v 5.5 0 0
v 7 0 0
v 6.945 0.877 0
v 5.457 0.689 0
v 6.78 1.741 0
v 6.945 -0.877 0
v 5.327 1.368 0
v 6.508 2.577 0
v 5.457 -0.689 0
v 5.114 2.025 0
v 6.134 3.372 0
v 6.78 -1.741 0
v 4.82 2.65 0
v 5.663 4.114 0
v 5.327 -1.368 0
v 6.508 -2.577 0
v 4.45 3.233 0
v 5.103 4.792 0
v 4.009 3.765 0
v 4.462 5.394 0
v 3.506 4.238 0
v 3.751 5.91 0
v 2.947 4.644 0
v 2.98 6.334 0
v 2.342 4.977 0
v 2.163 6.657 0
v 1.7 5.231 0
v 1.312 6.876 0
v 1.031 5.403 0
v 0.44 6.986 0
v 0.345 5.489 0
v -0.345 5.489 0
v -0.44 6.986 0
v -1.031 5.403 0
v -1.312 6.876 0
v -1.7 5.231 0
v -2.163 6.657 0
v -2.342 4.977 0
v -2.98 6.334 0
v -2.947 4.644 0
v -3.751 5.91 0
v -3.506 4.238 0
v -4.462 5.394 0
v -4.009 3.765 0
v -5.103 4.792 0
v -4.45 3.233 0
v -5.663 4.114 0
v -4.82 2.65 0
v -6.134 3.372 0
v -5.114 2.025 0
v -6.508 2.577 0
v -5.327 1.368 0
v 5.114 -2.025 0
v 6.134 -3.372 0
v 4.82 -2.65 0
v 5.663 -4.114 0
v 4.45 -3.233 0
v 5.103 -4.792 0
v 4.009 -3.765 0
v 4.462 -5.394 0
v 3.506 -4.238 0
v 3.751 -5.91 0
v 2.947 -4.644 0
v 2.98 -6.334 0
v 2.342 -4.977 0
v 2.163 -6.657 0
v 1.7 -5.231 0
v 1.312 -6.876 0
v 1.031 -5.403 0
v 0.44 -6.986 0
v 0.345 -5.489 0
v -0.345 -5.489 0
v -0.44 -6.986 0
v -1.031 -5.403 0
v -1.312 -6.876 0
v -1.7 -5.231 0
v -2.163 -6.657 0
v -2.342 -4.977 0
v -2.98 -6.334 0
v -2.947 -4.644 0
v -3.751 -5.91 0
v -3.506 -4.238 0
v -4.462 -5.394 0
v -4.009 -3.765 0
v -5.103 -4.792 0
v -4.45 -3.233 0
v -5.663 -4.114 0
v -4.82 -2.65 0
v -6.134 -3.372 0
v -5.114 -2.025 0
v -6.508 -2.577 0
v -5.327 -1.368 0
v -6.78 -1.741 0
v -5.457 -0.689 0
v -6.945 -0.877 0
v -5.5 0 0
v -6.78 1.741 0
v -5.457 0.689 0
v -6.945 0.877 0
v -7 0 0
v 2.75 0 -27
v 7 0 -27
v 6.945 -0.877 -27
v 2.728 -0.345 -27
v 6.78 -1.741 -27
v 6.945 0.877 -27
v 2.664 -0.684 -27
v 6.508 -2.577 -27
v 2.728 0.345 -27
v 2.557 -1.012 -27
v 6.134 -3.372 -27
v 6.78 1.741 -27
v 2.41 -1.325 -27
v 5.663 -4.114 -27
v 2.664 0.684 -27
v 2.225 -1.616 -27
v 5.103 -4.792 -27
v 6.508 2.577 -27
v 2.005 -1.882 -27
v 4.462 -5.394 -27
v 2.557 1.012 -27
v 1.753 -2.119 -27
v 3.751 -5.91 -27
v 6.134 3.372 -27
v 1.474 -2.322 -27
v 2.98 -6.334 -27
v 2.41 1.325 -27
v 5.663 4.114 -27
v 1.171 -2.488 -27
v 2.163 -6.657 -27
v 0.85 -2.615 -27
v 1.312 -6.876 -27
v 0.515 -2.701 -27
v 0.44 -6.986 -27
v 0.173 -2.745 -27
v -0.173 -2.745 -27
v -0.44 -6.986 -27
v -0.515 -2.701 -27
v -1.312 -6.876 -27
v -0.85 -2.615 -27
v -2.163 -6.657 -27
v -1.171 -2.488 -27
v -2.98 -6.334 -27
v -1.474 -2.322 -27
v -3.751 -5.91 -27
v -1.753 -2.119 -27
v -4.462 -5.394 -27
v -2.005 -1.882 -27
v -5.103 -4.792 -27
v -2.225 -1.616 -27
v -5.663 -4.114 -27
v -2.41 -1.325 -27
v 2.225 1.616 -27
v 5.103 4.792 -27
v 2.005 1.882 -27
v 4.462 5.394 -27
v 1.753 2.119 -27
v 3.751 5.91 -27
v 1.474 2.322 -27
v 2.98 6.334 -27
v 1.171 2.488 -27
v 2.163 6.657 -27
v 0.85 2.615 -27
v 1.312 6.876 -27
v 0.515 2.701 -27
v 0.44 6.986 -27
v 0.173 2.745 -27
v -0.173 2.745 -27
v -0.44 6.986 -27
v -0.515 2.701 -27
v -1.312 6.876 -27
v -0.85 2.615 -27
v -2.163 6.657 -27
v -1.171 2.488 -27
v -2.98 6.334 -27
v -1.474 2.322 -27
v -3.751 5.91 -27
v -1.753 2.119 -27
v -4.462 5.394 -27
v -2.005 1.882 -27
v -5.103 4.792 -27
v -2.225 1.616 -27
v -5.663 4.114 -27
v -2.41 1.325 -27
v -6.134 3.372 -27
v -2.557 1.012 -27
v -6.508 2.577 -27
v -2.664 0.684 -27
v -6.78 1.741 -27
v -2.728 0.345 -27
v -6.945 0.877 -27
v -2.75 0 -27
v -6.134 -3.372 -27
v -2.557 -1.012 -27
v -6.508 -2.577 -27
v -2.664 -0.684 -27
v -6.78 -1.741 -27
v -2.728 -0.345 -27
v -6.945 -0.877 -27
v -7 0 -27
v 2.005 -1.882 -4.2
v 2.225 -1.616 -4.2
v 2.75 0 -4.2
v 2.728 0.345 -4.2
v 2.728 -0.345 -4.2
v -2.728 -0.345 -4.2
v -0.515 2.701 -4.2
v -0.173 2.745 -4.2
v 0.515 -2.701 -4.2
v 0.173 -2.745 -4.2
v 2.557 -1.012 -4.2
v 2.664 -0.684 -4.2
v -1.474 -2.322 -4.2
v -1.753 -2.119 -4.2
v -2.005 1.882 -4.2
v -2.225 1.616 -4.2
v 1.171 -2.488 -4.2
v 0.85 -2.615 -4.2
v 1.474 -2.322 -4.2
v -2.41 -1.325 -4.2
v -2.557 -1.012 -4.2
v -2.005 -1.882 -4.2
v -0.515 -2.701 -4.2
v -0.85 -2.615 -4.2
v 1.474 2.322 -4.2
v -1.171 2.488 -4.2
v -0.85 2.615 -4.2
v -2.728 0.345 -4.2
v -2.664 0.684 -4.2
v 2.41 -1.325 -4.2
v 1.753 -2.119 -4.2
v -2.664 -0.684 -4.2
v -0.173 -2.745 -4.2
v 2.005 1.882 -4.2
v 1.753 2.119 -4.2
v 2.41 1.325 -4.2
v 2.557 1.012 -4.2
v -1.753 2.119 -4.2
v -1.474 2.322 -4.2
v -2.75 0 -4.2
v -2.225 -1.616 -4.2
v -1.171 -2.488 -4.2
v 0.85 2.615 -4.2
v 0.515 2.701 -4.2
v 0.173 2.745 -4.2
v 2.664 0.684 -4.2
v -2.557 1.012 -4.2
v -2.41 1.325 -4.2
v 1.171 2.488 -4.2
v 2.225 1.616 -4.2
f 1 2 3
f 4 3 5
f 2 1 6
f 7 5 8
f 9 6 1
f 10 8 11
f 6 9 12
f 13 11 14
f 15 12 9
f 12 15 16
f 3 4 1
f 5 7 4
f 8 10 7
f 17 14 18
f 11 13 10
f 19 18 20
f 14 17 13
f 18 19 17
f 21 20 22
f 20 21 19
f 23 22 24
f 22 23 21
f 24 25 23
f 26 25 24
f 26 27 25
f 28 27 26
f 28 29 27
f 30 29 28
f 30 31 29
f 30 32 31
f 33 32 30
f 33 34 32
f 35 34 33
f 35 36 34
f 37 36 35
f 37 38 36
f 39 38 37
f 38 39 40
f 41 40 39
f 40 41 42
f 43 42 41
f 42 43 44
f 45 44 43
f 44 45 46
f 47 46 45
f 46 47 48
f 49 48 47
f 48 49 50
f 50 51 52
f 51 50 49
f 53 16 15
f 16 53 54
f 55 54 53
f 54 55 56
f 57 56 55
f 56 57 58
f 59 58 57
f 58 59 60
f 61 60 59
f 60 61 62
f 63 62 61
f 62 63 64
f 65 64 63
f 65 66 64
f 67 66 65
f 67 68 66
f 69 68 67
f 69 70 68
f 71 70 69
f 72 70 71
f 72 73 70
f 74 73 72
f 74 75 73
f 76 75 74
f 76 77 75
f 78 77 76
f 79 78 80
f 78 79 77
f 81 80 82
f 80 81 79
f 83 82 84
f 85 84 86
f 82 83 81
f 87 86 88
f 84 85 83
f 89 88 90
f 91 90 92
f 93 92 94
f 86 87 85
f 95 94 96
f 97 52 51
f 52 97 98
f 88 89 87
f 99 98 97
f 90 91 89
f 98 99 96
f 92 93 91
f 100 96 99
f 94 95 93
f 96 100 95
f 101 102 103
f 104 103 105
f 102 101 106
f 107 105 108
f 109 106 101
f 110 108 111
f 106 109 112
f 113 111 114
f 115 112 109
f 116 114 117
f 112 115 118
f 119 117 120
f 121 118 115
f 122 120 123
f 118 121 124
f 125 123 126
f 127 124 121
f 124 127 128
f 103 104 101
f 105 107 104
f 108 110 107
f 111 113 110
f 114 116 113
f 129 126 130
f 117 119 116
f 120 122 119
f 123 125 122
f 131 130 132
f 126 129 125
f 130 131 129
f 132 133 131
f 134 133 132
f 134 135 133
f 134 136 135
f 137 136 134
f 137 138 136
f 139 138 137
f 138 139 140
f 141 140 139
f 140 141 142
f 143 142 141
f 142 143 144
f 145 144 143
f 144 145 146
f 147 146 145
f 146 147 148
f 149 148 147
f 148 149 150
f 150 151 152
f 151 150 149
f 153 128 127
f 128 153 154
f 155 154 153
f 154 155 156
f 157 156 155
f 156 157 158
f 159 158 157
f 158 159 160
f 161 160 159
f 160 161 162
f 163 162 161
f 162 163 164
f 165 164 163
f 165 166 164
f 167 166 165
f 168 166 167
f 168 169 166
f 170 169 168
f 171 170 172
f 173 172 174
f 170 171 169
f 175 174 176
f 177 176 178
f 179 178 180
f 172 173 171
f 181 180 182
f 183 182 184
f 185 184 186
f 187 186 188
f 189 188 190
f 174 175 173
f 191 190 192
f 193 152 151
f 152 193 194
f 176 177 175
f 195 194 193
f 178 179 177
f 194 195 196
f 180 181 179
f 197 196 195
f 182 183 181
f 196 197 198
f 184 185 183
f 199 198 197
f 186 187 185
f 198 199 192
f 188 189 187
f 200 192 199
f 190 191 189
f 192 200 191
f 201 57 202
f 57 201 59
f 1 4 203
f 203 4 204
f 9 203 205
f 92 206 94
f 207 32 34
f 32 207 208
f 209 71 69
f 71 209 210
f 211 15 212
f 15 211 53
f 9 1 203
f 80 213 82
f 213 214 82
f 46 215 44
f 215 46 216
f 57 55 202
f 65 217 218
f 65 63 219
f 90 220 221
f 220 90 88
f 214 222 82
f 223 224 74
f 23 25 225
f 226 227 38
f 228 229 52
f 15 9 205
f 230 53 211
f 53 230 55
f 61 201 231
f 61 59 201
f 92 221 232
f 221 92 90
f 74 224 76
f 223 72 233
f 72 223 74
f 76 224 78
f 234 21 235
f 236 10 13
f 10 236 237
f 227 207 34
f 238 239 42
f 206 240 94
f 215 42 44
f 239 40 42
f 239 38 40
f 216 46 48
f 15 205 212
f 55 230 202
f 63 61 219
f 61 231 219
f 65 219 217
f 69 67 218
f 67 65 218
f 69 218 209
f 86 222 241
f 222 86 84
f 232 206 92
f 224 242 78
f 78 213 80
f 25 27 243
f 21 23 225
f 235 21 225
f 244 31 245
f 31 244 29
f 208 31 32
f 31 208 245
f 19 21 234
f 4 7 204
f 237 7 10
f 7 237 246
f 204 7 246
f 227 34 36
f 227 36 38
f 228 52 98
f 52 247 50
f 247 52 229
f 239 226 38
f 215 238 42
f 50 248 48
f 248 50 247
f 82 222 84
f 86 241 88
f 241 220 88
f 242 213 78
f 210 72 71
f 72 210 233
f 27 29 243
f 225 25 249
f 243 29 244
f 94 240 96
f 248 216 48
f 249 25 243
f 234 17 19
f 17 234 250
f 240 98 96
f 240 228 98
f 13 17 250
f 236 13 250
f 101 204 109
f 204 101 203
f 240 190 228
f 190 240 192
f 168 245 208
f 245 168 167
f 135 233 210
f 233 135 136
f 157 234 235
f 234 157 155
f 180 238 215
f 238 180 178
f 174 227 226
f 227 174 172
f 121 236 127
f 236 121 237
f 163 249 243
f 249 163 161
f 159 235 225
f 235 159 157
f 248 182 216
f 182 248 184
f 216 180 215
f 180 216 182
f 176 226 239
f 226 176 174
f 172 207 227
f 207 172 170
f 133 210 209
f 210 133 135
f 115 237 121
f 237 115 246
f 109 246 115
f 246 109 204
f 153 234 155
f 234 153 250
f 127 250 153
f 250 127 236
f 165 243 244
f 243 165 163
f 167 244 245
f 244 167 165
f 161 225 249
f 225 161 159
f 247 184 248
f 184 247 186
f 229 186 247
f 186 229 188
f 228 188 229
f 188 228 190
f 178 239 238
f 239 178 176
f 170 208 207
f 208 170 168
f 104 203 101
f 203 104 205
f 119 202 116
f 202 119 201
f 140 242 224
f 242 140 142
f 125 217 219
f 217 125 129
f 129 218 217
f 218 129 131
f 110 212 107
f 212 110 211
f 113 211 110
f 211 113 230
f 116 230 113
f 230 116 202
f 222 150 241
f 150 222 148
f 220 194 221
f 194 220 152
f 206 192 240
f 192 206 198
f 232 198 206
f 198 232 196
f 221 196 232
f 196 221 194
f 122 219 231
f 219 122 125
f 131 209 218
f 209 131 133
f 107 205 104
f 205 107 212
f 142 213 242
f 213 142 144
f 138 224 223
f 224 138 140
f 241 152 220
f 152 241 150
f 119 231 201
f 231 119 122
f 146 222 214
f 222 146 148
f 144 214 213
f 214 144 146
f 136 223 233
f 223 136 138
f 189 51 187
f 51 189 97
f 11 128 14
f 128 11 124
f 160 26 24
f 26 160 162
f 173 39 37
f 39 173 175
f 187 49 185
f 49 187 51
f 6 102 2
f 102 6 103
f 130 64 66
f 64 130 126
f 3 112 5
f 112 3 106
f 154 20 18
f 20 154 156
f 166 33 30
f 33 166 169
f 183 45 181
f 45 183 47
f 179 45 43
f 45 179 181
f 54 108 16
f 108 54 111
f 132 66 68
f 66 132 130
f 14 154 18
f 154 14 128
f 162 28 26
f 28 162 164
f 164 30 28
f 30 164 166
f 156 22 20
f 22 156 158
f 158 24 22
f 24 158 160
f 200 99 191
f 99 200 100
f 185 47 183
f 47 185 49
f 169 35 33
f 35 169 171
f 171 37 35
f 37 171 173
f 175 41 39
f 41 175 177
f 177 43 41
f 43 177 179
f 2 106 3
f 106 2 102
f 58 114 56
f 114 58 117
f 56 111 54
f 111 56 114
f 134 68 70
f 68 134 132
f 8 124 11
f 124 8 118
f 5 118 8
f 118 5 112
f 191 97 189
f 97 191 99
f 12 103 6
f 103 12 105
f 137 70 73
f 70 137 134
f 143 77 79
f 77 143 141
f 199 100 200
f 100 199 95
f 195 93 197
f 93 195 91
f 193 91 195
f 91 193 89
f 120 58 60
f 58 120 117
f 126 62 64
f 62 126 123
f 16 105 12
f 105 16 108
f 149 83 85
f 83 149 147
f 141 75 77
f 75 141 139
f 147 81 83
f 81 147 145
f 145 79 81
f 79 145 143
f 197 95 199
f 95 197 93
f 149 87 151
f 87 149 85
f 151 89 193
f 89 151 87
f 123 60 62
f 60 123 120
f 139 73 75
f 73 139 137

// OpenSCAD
$fn = 50;


difference() {
	union() {
		translate(v = [0, 0, -27.0000000000]) {
			cylinder(h = 27, r = 7.0000000000);
		}
		cylinder(h = 0, r = 10.0000000000);
	}
	union() {
		translate(v = [0, 0, 0]) {
			rotate(a = [0, 0, 0]) {
				difference() {
					union() {
						#translate(v = [0, 0, -27.0000000000]) {
							cylinder(h = 27, r = 2.2500000000);
						}
						#translate(v = [0, 0, -4.2000000000]) {
							cylinder(h = 4.2000000000, r1 = 2.7500000000, r2 = 5.5000000000);
						}
						#translate(v = [0, 0, -27.0000000000]) {
							cylinder(h = 27, r = 2.7500000000);
						}
						#translate(v = [0, 0, -27.0000000000]) {
							cylinder(h = 27, r = 2.2500000000);
						}
					}
					union();
				}
			}
		}
	}
}
